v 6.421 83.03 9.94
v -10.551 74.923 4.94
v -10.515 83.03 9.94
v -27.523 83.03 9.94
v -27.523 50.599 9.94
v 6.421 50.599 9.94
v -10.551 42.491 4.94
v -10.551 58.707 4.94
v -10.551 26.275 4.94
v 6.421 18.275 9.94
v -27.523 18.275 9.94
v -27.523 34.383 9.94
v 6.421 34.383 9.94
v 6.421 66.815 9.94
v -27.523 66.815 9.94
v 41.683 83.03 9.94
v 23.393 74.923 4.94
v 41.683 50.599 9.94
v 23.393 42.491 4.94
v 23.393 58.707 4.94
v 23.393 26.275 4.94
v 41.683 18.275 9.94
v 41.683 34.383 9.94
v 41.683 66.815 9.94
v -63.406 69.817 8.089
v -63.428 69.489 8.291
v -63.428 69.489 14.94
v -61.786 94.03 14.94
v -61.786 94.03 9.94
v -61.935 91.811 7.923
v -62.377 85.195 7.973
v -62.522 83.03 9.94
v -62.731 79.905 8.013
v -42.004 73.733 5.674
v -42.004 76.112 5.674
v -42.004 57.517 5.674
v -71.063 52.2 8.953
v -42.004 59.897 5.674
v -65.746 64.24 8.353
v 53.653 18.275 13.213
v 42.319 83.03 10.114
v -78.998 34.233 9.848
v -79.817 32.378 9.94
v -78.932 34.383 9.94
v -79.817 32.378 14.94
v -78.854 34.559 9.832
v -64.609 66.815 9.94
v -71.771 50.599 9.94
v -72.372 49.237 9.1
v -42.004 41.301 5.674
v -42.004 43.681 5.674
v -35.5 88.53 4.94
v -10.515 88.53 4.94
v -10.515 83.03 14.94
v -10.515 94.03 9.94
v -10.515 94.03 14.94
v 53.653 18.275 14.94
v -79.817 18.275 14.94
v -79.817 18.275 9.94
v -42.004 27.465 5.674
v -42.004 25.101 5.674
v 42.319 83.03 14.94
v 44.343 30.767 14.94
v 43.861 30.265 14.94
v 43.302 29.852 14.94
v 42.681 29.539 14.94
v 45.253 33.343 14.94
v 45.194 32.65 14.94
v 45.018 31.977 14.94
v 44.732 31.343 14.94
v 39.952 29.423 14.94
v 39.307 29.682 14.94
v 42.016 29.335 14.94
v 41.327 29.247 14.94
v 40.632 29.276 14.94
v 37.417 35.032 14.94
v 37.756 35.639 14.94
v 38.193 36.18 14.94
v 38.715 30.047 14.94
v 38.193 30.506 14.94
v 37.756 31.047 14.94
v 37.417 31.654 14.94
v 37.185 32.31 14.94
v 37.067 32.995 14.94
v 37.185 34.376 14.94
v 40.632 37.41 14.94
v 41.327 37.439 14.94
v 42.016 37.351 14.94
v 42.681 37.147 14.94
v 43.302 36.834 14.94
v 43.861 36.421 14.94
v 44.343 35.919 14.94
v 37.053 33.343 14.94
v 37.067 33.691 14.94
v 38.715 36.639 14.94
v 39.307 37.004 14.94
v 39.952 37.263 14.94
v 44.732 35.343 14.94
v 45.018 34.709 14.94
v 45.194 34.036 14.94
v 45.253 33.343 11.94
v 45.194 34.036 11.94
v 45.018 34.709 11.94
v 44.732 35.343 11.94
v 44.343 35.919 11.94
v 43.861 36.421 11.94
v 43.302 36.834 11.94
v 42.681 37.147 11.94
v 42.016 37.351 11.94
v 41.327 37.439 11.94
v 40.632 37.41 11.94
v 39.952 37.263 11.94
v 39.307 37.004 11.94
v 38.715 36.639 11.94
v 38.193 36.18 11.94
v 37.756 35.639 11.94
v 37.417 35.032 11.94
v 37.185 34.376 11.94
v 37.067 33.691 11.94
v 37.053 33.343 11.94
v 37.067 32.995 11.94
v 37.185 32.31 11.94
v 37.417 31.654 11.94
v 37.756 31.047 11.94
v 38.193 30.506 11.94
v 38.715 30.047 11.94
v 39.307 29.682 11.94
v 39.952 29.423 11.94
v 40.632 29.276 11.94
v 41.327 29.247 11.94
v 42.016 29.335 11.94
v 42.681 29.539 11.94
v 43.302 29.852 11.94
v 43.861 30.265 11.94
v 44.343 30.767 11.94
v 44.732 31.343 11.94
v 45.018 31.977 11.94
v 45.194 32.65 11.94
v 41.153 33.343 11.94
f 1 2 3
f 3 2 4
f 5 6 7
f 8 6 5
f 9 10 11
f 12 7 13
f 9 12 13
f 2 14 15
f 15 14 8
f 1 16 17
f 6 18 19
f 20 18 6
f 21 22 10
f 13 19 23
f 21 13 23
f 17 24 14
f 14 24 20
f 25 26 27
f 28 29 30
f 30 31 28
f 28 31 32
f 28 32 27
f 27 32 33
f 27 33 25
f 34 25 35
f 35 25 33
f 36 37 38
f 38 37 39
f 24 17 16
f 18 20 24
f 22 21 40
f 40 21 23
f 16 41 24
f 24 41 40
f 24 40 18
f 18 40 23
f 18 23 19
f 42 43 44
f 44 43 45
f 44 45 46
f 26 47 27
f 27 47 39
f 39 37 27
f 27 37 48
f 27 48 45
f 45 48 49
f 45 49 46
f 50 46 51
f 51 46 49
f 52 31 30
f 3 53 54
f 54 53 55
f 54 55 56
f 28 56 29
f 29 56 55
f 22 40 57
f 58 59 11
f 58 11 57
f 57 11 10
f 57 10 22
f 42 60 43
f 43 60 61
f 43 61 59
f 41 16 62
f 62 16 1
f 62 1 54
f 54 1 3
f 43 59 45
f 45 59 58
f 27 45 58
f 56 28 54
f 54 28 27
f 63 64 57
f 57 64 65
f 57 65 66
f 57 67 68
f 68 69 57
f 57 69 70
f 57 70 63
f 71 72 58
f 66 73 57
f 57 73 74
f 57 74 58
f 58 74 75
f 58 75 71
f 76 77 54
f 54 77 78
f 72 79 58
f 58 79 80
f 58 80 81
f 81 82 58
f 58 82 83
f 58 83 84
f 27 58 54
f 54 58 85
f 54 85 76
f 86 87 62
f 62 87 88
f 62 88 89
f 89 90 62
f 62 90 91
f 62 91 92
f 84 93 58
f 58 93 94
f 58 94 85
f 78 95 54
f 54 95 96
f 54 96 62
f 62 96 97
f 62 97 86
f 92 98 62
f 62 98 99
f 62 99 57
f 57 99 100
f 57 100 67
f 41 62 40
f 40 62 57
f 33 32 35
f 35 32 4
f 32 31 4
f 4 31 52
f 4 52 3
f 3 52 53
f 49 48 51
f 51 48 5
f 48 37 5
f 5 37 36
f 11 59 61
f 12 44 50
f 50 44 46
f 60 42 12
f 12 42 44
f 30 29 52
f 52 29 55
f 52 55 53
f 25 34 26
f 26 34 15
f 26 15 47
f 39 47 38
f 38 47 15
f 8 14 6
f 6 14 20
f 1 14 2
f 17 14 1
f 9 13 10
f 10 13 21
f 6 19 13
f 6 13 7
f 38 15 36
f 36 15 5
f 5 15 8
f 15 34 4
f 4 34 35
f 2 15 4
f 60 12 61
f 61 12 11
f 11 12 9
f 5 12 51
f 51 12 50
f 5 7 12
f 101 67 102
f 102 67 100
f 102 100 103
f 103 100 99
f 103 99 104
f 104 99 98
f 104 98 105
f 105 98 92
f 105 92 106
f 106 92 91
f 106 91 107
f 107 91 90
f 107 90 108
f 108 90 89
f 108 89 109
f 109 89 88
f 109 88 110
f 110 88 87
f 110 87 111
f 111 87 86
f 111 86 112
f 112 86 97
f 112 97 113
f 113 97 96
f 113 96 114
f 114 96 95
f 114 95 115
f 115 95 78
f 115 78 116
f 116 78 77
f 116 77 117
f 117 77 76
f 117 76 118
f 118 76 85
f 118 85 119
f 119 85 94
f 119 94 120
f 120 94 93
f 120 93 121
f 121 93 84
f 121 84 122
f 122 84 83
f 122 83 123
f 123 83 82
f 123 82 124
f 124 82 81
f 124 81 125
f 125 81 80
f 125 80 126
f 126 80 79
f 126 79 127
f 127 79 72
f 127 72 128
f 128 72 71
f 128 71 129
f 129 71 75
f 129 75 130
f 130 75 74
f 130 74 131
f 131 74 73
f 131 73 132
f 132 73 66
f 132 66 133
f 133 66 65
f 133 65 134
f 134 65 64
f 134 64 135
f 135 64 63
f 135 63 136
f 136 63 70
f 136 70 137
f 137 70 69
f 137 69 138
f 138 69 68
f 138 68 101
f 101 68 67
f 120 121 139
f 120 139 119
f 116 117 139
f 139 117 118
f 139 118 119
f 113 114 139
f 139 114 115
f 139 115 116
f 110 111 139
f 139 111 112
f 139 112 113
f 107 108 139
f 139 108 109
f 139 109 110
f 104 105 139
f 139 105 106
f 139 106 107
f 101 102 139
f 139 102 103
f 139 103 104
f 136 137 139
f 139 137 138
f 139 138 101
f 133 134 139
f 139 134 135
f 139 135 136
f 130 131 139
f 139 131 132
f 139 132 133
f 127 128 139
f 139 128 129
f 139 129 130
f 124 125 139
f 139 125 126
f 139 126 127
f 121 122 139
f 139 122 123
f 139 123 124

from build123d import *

# Parameters (mm, degrees)
BOSS_EXTRU_1_DEPTH      = 75.755
ENL_V_MAT_EXTRU_1_DEPTH = 124.743757195
ENL_V_MAT_EXTRU_2_DEPTH = 164.948761341
ENL_V_MAT_EXTRU_3_DEPTH = 104.861599502
ESQUISSE7_R             = 4.1
ENL_V_MAT_EXTRU_8_DEPTH = 3


with BuildPart() as part:
    # Esquisse1 → Boss.-Extru.1 (new body)
    with BuildSketch(Plane(origin=(0, 18.275365242, 0), x_dir=(1, 0, 0), z_dir=(0, 1, 0))):
        Polygon((59.971997273, -14.940347022), (23.39332157, -4.940347022), (-35.499575309, -4.940347022), (-79.817340578, -9.940347022), (-79.817340578, -14.940347022), align=None)
    extrude(amount=BOSS_EXTRU_1_DEPTH)

    # Esquisse2 → Enlèv. mat.-Extru.1 (cut, through all)
    with BuildSketch(Plane.XY.offset(14.940347022)):
        Polygon((-79.817340578, 32.378172924), (-63.428173599, 69.489176305), (-61.786327919, 94.030365243), (-79.817340578, 94.030365243), align=None)
        Polygon((-10.515385045, 94.030365243), (-10.515385045, 83.030365243), (42.318963009, 83.030365243), (59.971997273, -17.829066981), (59.971997273, 94.030365243), align=None)
    extrude(amount=-ENL_V_MAT_EXTRU_1_DEPTH, mode=Mode.SUBTRACT)

    # Esquisse3 → Enlèv. mat.-Extru.2 (cut, through all)
    with BuildSketch(Plane.ZY.offset(79.817340578)):
        Polygon((4.940347022, 18.275365242), (9.940347022, 18.275365242), (4.940347022, 26.275365242), align=None)
        Polygon((4.940347022, 42.491079528), (4.940347022, 26.275365242), (9.940347022, 34.383222385), align=None)
        Polygon((4.940347022, 94.030365243), (4.940347022, 88.530365243), (9.940347022, 94.030365243), align=None)
        Polygon((4.940347022, 58.706793814), (4.940347022, 42.491079528), (9.940347022, 50.598936671), align=None)
        Polygon((4.940347022, 74.9225081), (4.940347022, 58.706793814), (9.940347022, 66.814650957), align=None)
        Polygon((4.940347022, 88.530365243), (4.940347022, 74.9225081), (9.940347022, 83.030365243), align=None)
    extrude(amount=-ENL_V_MAT_EXTRU_2_DEPTH, mode=Mode.SUBTRACT)

    # Esquisse4 → Enlèv. mat.-Extru.3 (cut, through all)
    with BuildSketch(Plane(origin=(0, 83.030365243, 0), x_dir=(1, 0, 0), z_dir=(0, 1, 0))):
        Polygon((23.39332157, -4.940347022), (-10.550727062, -4.940347022), (6.421297254, -9.940347022), align=None)
        Polygon((-10.550727062, -4.940347022), (-44.494775695, -4.940347022), (-27.522751379, -9.940347022), align=None)
        Polygon((-79.817340578, -4.940347022), (-61.934802033, -7.92281089), (-44.494775695, -4.940347022), align=None)
    extrude(amount=-ENL_V_MAT_EXTRU_3_DEPTH, mode=Mode.SUBTRACT)

    # Esquisse7 → Enlèv. mat.-Extru.8 (cut)
    with BuildSketch(Plane(origin=(0, 0, 14.940347022), x_dir=(-1, 0, 0), z_dir=(0, 0, -1))):
        with Locations((-41.152659422, 33.343031941)):
            Circle(ESQUISSE7_R)
    extrude(amount=ENL_V_MAT_EXTRU_8_DEPTH, mode=Mode.SUBTRACT)


solid = part.part
